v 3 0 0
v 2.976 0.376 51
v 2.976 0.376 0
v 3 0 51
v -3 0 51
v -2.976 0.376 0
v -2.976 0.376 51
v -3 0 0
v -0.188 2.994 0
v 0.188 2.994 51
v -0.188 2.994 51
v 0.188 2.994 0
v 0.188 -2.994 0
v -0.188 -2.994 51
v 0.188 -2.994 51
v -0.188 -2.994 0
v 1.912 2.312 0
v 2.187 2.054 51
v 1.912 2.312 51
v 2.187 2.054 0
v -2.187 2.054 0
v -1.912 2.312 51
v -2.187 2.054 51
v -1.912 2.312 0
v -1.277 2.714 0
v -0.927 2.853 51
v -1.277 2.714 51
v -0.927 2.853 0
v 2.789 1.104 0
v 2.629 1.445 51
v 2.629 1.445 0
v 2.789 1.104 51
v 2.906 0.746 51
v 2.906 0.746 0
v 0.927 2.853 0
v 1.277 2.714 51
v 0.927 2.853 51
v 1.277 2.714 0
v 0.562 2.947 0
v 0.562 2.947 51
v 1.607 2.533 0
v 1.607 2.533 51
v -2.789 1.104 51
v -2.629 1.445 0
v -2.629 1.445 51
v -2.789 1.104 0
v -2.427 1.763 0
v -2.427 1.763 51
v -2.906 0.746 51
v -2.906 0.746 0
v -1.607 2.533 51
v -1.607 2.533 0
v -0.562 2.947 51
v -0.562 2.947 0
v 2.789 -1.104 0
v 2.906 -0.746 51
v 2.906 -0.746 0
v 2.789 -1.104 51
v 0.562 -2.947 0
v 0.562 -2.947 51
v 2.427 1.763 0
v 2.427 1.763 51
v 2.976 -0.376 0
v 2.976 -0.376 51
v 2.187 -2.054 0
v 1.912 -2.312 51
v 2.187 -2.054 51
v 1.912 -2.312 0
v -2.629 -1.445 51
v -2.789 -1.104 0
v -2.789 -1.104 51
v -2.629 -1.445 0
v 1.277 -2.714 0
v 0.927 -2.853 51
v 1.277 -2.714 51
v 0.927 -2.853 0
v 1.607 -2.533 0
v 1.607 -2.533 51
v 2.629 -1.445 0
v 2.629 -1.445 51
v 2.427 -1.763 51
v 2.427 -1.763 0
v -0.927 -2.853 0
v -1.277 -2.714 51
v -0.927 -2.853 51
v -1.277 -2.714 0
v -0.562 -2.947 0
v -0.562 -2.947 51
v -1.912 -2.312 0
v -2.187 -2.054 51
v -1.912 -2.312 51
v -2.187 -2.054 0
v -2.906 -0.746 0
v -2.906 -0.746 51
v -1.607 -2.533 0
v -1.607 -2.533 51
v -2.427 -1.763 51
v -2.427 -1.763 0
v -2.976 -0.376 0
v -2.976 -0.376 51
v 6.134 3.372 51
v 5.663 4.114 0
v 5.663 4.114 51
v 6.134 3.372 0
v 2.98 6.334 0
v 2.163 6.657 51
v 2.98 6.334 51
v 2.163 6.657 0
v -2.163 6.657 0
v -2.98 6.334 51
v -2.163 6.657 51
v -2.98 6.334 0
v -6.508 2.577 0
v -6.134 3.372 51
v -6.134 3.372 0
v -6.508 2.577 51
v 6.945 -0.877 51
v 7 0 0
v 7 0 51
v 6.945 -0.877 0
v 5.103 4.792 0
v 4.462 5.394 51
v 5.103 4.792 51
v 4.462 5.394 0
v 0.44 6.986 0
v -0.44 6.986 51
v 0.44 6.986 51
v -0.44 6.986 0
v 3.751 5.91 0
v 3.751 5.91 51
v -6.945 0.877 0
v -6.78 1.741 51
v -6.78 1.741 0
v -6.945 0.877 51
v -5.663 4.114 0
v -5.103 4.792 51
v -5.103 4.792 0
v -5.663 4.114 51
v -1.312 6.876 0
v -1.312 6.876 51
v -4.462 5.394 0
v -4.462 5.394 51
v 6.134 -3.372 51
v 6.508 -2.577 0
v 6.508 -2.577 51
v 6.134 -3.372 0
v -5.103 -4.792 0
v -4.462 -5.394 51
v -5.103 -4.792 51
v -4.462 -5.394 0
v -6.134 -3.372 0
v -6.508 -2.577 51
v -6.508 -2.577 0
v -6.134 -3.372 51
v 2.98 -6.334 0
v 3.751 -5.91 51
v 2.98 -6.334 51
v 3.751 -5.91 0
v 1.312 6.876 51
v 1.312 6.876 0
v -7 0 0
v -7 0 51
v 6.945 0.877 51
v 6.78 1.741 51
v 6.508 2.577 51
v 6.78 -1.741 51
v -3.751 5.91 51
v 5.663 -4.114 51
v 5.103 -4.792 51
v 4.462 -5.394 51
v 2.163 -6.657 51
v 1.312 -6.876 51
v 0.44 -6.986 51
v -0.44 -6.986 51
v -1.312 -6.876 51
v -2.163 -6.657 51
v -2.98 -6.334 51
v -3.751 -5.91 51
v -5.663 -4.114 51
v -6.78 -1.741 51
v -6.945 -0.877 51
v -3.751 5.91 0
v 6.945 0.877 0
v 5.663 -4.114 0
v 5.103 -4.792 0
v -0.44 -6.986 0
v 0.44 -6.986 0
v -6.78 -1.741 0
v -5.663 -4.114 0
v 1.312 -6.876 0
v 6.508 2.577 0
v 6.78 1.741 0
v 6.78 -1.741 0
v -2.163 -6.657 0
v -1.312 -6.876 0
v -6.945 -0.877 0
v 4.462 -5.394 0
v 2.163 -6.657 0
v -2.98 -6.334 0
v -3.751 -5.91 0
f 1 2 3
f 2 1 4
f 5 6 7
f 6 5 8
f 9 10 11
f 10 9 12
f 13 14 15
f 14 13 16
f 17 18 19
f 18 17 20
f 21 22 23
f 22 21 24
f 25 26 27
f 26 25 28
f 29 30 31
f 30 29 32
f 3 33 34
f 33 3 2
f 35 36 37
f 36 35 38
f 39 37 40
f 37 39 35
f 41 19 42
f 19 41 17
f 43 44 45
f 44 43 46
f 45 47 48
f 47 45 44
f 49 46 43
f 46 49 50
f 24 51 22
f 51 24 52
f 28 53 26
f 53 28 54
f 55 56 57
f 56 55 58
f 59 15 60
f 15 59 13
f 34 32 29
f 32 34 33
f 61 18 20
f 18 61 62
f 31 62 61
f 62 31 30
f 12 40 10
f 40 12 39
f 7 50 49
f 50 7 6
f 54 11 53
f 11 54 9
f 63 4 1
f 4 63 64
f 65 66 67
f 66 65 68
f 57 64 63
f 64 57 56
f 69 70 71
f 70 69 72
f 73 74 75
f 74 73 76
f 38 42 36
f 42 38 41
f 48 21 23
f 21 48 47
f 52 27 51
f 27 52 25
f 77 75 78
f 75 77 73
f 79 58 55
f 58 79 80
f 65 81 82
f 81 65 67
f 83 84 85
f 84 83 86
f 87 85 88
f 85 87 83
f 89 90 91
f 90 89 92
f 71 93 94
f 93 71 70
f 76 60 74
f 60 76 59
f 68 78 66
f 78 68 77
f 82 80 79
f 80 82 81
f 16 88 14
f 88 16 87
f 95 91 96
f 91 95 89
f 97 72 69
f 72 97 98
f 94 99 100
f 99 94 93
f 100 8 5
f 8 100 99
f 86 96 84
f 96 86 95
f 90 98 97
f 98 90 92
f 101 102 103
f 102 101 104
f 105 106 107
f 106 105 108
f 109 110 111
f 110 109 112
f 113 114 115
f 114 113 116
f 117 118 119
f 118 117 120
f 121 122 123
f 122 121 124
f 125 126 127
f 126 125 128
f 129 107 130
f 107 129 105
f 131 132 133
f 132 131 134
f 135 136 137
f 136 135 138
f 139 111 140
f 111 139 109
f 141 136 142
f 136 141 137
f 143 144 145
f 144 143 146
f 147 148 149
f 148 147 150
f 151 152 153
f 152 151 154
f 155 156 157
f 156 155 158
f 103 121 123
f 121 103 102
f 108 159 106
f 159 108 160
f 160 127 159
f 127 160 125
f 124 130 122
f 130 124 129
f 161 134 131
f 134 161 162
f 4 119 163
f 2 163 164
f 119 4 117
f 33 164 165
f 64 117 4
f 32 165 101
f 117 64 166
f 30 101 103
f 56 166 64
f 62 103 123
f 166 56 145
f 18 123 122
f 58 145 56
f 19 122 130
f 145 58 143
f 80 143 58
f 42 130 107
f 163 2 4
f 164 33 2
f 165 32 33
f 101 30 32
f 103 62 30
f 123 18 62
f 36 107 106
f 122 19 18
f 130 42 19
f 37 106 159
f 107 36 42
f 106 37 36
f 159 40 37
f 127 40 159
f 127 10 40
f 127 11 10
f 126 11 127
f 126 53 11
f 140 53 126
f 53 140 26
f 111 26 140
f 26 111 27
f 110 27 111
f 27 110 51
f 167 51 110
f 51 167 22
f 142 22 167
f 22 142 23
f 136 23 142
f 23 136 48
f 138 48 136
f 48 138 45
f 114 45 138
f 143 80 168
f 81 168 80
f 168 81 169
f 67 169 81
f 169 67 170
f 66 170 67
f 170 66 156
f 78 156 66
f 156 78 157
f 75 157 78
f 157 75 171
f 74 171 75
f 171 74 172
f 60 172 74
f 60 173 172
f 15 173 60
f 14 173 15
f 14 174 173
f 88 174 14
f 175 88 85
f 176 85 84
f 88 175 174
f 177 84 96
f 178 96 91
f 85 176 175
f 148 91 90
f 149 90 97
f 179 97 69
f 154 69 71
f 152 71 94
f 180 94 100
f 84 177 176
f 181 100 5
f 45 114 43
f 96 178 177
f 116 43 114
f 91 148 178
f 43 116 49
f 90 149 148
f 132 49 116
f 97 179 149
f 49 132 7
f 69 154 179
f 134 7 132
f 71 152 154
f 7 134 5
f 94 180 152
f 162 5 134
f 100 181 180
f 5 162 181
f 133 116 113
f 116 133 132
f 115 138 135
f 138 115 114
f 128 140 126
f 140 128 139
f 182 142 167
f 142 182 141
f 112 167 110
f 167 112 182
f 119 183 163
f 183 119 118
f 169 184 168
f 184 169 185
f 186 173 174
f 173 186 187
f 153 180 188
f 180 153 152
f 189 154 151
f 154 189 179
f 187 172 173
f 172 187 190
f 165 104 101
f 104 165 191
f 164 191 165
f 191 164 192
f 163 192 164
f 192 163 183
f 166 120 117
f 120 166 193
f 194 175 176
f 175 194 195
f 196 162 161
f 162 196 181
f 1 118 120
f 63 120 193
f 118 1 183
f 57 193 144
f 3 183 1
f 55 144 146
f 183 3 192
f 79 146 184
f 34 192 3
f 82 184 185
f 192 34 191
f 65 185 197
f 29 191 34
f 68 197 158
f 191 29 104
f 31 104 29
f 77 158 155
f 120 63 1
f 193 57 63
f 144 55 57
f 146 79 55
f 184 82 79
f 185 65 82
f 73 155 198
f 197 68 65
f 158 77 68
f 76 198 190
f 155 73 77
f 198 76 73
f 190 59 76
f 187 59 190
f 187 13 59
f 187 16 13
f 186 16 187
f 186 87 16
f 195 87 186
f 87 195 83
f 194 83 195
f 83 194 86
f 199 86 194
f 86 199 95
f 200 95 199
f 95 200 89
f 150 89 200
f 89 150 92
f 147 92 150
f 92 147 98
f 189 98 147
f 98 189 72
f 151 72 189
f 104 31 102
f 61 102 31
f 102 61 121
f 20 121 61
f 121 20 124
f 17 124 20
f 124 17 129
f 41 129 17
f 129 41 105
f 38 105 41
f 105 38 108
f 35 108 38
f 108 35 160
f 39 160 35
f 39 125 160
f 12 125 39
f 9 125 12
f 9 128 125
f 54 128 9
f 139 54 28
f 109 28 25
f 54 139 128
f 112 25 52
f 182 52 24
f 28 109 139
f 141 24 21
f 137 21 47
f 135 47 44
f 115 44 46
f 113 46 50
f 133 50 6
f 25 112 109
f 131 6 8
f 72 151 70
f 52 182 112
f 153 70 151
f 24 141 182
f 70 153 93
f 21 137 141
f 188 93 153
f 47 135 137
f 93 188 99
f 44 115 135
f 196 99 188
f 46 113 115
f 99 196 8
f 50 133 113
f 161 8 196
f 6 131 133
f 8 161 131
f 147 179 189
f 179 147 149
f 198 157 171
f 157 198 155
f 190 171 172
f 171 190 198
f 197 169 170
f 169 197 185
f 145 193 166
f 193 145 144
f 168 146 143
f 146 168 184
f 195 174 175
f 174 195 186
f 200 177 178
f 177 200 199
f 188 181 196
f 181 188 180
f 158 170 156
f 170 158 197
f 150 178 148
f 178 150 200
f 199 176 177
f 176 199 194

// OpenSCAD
$fn = 50;


difference() {
	union() {
		*color(alpha = 1.0000000000, c = "gray") {
			translate(v = [0, 7, 0]) {
				linear_extrude(height = 1) {
					text(font = "Arial:style=Bold", halign = "center", size = 4.5000000000, text = "COMMENT plate main", valign = "center");
				}
			}
		}
		cylinder(h = 51, r = 7.0000000000);
	}
	union() {
		*color(alpha = 1.0000000000, c = "gray") {
			translate(v = [0, 7, 0]) {
				linear_extrude(height = 1) {
					text(font = "Arial:style=Bold", halign = "center", size = 4.5000000000, text = "COMMENT holes main", valign = "center");
				}
			}
		}
		translate(v = [0, 0, -100]) {
			cylinder(h = 200, r = 3.0000000000);
		}
		translate(v = [0, 0, -100]) {
			cylinder(h = 200, r = 1.5000000000);
		}
	}
}
